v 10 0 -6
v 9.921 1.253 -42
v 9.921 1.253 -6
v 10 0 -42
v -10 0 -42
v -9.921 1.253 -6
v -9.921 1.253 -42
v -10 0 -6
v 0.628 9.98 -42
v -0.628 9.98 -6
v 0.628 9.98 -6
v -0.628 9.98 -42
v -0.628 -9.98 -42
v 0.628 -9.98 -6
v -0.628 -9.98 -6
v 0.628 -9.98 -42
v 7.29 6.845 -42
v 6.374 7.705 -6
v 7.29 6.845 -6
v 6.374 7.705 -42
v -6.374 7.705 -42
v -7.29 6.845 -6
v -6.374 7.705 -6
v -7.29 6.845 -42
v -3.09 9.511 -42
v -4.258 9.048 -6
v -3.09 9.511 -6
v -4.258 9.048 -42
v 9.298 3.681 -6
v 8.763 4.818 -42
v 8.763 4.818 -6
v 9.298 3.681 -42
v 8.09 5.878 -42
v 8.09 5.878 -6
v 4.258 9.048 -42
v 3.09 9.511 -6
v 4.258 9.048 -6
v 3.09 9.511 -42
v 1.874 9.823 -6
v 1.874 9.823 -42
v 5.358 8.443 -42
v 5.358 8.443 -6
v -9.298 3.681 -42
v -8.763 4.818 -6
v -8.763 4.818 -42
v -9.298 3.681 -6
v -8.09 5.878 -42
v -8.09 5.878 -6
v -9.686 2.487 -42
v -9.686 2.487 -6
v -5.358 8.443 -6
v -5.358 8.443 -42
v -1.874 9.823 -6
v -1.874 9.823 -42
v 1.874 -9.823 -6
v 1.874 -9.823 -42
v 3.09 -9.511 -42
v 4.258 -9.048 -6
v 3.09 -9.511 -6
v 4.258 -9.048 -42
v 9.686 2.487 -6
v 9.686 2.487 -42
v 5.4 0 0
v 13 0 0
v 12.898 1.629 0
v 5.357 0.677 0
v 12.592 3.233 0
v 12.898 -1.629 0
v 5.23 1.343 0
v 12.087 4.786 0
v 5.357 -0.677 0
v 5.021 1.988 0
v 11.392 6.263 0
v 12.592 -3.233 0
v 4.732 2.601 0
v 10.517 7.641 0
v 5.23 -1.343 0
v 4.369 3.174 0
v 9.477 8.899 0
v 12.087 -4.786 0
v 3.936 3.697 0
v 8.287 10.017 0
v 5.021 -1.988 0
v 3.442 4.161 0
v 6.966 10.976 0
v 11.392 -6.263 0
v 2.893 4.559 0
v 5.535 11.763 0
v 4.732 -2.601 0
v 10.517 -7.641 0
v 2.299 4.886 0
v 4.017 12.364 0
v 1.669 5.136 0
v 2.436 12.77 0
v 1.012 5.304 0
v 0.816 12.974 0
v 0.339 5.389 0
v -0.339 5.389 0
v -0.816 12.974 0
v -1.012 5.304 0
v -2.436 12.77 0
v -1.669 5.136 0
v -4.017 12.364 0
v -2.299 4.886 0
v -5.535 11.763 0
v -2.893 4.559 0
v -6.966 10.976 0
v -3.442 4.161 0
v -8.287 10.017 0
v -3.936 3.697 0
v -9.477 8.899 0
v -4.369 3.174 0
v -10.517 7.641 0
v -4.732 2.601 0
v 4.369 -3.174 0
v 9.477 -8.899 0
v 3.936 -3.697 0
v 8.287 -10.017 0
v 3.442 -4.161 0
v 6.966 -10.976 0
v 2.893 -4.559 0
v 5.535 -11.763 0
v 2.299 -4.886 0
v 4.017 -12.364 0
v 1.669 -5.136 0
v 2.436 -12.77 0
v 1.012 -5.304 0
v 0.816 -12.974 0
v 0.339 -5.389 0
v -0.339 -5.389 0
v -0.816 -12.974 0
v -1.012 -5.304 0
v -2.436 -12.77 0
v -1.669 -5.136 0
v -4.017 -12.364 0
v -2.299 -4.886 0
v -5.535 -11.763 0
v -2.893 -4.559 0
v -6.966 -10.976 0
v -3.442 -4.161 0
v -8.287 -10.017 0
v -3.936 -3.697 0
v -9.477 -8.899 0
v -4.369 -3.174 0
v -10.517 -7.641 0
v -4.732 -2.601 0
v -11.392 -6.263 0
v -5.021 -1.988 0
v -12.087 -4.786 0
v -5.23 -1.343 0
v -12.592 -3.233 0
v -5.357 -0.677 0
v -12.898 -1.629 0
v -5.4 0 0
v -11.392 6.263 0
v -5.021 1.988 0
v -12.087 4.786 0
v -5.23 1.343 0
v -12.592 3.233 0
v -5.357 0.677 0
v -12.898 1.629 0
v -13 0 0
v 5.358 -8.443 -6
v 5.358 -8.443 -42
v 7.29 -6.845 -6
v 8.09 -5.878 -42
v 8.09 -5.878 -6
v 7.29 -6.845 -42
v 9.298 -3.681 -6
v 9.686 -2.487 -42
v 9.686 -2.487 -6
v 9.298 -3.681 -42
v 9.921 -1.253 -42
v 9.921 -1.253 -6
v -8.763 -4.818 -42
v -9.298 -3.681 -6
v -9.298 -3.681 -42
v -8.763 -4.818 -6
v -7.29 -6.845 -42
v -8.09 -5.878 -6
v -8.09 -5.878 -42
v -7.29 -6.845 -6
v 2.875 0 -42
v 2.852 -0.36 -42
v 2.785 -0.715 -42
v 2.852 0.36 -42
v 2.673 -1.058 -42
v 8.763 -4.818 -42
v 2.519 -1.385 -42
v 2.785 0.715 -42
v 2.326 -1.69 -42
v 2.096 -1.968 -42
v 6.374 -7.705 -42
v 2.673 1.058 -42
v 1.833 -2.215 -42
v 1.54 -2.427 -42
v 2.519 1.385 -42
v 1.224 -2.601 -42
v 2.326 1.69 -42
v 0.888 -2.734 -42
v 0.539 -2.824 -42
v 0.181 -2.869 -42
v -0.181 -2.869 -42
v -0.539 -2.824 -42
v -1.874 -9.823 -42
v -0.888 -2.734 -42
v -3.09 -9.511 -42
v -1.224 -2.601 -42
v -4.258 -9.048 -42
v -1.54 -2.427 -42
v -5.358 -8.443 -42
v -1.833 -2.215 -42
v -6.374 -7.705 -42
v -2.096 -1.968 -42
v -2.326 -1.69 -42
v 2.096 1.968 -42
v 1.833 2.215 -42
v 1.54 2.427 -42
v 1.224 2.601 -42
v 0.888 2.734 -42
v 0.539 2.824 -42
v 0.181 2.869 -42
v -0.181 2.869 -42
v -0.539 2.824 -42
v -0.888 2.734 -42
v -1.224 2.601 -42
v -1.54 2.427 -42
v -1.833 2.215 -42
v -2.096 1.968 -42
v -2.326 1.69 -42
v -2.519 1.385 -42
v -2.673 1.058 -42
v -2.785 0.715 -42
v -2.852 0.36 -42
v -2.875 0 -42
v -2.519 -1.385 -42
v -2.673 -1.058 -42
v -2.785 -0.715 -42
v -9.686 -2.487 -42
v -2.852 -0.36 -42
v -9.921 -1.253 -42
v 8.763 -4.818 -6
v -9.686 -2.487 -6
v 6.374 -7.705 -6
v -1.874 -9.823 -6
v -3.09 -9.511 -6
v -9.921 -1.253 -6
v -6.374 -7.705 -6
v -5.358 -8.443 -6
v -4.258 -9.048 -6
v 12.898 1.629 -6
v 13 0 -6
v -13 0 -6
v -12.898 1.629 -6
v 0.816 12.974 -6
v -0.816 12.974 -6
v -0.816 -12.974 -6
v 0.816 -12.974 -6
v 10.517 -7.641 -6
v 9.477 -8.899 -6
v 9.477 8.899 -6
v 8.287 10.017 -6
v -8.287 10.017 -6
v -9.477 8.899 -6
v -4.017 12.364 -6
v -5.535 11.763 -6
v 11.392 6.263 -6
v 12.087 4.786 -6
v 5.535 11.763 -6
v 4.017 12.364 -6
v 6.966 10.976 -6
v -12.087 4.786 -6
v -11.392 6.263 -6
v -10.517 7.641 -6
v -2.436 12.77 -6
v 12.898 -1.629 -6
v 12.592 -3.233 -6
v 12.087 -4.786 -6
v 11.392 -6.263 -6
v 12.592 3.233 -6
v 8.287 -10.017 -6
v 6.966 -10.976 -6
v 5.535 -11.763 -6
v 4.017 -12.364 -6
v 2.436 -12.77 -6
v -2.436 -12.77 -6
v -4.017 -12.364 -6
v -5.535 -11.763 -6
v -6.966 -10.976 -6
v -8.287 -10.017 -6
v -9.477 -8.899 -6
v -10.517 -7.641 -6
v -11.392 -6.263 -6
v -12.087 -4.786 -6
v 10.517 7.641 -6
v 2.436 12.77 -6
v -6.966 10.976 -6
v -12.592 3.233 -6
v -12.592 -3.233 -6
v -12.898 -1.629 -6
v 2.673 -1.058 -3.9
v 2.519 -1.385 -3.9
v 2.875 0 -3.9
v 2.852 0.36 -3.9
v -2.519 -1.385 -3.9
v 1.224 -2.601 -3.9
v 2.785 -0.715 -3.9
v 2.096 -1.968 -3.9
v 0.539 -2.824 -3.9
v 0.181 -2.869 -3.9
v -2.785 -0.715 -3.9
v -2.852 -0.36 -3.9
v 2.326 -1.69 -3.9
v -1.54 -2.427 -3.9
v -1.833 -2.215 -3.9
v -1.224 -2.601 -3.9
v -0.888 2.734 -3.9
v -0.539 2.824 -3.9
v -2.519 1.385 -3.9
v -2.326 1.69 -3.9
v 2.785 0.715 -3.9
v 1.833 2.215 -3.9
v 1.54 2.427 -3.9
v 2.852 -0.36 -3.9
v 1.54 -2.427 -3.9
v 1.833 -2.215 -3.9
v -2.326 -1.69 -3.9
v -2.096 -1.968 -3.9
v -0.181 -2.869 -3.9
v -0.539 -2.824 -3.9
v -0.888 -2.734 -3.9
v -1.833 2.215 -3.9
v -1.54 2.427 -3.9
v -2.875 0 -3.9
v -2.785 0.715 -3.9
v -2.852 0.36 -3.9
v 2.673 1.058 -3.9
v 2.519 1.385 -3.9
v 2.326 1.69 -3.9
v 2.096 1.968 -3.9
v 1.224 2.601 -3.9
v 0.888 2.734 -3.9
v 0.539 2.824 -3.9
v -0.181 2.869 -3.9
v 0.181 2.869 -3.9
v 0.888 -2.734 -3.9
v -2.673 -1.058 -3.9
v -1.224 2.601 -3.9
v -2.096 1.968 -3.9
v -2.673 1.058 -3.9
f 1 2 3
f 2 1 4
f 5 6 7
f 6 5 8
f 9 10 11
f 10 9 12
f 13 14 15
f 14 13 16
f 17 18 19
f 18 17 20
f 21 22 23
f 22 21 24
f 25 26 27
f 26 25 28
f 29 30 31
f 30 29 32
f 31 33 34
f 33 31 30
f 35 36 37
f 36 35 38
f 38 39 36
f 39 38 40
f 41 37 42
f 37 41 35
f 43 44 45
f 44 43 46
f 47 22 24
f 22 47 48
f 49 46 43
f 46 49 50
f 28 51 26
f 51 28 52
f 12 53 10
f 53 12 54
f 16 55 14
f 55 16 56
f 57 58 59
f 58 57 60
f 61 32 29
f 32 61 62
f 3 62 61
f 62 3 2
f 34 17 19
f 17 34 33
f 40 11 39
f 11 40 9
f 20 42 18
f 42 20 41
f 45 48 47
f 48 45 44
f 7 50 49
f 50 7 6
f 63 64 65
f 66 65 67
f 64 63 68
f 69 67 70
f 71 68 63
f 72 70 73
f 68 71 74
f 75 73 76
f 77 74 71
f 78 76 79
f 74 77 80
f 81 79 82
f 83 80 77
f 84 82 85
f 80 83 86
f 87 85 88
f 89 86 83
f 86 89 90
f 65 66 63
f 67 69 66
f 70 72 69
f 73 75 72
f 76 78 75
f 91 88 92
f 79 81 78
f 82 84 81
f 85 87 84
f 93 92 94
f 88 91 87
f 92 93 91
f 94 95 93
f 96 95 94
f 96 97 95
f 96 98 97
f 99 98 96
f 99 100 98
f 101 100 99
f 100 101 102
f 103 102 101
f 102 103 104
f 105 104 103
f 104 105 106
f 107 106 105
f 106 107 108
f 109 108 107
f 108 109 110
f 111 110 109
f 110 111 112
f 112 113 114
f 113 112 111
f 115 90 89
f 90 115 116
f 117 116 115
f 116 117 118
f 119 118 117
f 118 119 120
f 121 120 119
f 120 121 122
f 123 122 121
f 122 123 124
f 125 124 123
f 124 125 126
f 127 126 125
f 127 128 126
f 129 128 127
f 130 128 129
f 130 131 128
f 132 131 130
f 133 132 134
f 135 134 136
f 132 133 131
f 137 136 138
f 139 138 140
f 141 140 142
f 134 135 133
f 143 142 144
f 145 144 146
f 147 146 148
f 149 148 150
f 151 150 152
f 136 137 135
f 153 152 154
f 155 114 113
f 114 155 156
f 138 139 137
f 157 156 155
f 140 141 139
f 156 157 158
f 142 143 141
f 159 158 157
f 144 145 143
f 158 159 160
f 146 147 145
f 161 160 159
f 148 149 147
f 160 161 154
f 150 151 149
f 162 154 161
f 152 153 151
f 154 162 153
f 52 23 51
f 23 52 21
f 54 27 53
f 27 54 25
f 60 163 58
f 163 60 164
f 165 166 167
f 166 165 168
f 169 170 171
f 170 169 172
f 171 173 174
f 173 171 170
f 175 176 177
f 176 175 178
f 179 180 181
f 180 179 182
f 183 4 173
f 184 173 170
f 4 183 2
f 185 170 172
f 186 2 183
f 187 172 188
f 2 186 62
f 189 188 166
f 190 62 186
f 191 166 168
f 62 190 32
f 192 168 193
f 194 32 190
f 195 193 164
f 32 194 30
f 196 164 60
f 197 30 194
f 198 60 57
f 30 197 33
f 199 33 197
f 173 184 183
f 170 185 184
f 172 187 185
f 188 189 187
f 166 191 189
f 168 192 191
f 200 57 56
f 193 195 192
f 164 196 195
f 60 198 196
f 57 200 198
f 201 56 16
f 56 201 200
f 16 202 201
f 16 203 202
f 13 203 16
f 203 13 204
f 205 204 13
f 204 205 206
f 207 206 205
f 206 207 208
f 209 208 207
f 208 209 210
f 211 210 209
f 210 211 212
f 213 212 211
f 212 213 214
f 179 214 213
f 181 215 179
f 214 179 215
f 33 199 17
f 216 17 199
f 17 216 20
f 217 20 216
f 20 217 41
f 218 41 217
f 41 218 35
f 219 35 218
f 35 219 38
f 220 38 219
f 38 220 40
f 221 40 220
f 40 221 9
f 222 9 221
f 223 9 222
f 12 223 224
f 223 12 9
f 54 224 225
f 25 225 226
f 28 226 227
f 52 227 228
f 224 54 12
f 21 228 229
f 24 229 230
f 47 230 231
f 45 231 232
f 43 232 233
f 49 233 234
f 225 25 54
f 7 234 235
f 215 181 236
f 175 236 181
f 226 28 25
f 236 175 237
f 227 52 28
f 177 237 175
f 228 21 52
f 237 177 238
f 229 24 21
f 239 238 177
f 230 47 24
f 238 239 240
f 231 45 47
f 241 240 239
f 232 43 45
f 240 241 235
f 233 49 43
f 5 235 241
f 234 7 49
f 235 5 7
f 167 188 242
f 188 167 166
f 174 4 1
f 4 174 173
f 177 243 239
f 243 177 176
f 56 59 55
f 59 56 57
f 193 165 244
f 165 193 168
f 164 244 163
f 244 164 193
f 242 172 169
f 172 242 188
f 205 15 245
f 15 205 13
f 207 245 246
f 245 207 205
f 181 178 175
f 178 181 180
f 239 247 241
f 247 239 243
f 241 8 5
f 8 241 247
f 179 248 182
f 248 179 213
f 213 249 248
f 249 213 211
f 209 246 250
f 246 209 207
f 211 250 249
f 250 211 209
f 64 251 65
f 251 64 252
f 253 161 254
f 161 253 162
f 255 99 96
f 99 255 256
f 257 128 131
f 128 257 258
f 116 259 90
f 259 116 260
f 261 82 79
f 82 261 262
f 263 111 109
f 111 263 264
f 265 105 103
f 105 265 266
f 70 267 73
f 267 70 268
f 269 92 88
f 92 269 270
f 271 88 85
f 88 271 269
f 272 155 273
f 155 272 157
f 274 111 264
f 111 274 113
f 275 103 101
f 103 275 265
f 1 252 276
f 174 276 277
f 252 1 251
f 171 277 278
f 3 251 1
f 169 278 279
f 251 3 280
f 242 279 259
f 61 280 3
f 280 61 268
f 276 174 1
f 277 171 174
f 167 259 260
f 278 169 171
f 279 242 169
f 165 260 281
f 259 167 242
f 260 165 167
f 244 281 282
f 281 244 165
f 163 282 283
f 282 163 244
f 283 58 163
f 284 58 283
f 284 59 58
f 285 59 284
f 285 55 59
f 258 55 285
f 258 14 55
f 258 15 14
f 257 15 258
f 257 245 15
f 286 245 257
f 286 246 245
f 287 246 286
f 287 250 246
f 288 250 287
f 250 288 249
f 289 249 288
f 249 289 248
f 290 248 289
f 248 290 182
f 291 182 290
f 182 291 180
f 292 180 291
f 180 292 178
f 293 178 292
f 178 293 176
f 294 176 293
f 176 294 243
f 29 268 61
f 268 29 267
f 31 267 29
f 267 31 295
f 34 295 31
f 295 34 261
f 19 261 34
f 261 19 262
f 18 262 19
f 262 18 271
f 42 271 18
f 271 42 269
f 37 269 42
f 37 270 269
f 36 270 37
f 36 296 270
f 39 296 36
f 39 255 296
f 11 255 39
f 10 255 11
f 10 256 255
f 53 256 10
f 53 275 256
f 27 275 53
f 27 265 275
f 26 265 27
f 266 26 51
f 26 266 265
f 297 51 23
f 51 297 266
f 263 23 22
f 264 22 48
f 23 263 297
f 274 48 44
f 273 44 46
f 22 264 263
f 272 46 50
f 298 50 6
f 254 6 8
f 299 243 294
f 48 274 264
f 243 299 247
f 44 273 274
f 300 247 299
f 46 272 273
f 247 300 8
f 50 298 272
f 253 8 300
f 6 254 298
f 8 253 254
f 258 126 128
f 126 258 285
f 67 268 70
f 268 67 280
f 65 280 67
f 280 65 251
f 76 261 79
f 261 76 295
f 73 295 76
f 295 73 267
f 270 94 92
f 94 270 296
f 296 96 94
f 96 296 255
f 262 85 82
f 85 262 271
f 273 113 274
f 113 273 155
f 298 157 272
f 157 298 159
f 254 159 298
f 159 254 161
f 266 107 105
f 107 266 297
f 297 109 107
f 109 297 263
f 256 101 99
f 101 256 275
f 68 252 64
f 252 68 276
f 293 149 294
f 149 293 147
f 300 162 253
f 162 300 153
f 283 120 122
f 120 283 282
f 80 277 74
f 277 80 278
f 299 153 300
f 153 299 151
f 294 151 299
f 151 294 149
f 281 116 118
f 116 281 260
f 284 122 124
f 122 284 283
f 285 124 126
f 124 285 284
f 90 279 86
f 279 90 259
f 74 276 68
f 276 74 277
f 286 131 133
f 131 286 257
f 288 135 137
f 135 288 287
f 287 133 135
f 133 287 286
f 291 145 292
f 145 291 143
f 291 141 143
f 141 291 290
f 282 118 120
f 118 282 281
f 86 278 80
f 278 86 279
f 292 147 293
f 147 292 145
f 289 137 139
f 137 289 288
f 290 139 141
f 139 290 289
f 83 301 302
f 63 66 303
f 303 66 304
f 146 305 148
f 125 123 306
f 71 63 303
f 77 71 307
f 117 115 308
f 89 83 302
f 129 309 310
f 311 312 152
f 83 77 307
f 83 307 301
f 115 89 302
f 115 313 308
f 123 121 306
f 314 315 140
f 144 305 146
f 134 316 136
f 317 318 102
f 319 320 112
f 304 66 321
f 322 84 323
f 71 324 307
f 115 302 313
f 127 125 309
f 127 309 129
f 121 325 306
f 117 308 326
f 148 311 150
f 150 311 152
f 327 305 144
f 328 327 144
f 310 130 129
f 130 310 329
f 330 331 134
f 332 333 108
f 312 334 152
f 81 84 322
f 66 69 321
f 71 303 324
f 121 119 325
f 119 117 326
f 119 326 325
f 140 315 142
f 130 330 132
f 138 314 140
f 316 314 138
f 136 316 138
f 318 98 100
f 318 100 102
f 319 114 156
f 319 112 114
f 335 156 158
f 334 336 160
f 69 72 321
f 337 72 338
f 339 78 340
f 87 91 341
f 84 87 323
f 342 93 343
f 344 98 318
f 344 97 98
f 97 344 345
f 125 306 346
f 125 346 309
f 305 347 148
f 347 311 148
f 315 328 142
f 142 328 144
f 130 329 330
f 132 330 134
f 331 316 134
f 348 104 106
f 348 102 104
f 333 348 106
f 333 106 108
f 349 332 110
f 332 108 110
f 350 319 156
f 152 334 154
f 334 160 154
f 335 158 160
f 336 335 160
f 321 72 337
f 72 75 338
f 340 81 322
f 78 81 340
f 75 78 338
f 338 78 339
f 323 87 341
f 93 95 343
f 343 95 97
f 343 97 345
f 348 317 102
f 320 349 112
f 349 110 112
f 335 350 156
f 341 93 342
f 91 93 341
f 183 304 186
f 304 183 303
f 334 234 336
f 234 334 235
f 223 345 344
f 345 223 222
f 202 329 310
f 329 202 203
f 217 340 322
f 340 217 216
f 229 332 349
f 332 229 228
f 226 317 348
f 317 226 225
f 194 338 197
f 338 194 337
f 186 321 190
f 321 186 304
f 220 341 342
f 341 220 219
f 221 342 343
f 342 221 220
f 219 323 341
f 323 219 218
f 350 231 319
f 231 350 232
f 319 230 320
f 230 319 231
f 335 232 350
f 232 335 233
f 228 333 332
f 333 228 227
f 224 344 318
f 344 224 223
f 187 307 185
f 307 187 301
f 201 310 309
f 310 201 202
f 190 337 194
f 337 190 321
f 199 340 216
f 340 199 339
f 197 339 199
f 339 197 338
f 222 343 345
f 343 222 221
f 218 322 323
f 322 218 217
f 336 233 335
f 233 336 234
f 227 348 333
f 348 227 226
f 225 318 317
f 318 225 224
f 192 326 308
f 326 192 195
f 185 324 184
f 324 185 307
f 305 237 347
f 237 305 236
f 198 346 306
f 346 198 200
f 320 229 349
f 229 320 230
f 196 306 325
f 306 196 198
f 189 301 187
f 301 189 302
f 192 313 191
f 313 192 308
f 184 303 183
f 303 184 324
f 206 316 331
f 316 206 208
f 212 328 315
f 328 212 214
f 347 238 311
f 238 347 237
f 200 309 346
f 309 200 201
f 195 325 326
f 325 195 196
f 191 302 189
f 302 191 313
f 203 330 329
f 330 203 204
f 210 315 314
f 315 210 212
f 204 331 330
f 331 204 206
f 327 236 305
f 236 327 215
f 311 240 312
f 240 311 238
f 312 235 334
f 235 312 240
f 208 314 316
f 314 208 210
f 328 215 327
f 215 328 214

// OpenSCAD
$fn = 50;


difference() {
	union() {
		translate(v = [0, 0, -42.0000000000]) {
			cylinder(h = 42, r = 10.0000000000);
		}
		translate(v = [0, 0, -6.0000000000]) {
			cylinder(h = 6, r = 13.0000000000);
		}
	}
	union() {
		translate(v = [0, 0, 0]) {
			rotate(a = [0, 0, 0]) {
				difference() {
					union() {
						#translate(v = [0, 0, -42.0000000000]) {
							cylinder(h = 42, r = 2.6000000000);
						}
						#translate(v = [0, 0, -3.9000000000]) {
							cylinder(h = 3.9000000000, r = 10.0000000000, r1 = 2.8750000000, r2 = 5.4000000000);
						}
						#translate(v = [0, 0, -42.0000000000]) {
							cylinder(h = 42, r = 2.8750000000);
						}
						#translate(v = [0, 0, -42.0000000000]) {
							cylinder(h = 42, r = 2.6000000000);
						}
					}
					union();
				}
			}
		}
	}
}
